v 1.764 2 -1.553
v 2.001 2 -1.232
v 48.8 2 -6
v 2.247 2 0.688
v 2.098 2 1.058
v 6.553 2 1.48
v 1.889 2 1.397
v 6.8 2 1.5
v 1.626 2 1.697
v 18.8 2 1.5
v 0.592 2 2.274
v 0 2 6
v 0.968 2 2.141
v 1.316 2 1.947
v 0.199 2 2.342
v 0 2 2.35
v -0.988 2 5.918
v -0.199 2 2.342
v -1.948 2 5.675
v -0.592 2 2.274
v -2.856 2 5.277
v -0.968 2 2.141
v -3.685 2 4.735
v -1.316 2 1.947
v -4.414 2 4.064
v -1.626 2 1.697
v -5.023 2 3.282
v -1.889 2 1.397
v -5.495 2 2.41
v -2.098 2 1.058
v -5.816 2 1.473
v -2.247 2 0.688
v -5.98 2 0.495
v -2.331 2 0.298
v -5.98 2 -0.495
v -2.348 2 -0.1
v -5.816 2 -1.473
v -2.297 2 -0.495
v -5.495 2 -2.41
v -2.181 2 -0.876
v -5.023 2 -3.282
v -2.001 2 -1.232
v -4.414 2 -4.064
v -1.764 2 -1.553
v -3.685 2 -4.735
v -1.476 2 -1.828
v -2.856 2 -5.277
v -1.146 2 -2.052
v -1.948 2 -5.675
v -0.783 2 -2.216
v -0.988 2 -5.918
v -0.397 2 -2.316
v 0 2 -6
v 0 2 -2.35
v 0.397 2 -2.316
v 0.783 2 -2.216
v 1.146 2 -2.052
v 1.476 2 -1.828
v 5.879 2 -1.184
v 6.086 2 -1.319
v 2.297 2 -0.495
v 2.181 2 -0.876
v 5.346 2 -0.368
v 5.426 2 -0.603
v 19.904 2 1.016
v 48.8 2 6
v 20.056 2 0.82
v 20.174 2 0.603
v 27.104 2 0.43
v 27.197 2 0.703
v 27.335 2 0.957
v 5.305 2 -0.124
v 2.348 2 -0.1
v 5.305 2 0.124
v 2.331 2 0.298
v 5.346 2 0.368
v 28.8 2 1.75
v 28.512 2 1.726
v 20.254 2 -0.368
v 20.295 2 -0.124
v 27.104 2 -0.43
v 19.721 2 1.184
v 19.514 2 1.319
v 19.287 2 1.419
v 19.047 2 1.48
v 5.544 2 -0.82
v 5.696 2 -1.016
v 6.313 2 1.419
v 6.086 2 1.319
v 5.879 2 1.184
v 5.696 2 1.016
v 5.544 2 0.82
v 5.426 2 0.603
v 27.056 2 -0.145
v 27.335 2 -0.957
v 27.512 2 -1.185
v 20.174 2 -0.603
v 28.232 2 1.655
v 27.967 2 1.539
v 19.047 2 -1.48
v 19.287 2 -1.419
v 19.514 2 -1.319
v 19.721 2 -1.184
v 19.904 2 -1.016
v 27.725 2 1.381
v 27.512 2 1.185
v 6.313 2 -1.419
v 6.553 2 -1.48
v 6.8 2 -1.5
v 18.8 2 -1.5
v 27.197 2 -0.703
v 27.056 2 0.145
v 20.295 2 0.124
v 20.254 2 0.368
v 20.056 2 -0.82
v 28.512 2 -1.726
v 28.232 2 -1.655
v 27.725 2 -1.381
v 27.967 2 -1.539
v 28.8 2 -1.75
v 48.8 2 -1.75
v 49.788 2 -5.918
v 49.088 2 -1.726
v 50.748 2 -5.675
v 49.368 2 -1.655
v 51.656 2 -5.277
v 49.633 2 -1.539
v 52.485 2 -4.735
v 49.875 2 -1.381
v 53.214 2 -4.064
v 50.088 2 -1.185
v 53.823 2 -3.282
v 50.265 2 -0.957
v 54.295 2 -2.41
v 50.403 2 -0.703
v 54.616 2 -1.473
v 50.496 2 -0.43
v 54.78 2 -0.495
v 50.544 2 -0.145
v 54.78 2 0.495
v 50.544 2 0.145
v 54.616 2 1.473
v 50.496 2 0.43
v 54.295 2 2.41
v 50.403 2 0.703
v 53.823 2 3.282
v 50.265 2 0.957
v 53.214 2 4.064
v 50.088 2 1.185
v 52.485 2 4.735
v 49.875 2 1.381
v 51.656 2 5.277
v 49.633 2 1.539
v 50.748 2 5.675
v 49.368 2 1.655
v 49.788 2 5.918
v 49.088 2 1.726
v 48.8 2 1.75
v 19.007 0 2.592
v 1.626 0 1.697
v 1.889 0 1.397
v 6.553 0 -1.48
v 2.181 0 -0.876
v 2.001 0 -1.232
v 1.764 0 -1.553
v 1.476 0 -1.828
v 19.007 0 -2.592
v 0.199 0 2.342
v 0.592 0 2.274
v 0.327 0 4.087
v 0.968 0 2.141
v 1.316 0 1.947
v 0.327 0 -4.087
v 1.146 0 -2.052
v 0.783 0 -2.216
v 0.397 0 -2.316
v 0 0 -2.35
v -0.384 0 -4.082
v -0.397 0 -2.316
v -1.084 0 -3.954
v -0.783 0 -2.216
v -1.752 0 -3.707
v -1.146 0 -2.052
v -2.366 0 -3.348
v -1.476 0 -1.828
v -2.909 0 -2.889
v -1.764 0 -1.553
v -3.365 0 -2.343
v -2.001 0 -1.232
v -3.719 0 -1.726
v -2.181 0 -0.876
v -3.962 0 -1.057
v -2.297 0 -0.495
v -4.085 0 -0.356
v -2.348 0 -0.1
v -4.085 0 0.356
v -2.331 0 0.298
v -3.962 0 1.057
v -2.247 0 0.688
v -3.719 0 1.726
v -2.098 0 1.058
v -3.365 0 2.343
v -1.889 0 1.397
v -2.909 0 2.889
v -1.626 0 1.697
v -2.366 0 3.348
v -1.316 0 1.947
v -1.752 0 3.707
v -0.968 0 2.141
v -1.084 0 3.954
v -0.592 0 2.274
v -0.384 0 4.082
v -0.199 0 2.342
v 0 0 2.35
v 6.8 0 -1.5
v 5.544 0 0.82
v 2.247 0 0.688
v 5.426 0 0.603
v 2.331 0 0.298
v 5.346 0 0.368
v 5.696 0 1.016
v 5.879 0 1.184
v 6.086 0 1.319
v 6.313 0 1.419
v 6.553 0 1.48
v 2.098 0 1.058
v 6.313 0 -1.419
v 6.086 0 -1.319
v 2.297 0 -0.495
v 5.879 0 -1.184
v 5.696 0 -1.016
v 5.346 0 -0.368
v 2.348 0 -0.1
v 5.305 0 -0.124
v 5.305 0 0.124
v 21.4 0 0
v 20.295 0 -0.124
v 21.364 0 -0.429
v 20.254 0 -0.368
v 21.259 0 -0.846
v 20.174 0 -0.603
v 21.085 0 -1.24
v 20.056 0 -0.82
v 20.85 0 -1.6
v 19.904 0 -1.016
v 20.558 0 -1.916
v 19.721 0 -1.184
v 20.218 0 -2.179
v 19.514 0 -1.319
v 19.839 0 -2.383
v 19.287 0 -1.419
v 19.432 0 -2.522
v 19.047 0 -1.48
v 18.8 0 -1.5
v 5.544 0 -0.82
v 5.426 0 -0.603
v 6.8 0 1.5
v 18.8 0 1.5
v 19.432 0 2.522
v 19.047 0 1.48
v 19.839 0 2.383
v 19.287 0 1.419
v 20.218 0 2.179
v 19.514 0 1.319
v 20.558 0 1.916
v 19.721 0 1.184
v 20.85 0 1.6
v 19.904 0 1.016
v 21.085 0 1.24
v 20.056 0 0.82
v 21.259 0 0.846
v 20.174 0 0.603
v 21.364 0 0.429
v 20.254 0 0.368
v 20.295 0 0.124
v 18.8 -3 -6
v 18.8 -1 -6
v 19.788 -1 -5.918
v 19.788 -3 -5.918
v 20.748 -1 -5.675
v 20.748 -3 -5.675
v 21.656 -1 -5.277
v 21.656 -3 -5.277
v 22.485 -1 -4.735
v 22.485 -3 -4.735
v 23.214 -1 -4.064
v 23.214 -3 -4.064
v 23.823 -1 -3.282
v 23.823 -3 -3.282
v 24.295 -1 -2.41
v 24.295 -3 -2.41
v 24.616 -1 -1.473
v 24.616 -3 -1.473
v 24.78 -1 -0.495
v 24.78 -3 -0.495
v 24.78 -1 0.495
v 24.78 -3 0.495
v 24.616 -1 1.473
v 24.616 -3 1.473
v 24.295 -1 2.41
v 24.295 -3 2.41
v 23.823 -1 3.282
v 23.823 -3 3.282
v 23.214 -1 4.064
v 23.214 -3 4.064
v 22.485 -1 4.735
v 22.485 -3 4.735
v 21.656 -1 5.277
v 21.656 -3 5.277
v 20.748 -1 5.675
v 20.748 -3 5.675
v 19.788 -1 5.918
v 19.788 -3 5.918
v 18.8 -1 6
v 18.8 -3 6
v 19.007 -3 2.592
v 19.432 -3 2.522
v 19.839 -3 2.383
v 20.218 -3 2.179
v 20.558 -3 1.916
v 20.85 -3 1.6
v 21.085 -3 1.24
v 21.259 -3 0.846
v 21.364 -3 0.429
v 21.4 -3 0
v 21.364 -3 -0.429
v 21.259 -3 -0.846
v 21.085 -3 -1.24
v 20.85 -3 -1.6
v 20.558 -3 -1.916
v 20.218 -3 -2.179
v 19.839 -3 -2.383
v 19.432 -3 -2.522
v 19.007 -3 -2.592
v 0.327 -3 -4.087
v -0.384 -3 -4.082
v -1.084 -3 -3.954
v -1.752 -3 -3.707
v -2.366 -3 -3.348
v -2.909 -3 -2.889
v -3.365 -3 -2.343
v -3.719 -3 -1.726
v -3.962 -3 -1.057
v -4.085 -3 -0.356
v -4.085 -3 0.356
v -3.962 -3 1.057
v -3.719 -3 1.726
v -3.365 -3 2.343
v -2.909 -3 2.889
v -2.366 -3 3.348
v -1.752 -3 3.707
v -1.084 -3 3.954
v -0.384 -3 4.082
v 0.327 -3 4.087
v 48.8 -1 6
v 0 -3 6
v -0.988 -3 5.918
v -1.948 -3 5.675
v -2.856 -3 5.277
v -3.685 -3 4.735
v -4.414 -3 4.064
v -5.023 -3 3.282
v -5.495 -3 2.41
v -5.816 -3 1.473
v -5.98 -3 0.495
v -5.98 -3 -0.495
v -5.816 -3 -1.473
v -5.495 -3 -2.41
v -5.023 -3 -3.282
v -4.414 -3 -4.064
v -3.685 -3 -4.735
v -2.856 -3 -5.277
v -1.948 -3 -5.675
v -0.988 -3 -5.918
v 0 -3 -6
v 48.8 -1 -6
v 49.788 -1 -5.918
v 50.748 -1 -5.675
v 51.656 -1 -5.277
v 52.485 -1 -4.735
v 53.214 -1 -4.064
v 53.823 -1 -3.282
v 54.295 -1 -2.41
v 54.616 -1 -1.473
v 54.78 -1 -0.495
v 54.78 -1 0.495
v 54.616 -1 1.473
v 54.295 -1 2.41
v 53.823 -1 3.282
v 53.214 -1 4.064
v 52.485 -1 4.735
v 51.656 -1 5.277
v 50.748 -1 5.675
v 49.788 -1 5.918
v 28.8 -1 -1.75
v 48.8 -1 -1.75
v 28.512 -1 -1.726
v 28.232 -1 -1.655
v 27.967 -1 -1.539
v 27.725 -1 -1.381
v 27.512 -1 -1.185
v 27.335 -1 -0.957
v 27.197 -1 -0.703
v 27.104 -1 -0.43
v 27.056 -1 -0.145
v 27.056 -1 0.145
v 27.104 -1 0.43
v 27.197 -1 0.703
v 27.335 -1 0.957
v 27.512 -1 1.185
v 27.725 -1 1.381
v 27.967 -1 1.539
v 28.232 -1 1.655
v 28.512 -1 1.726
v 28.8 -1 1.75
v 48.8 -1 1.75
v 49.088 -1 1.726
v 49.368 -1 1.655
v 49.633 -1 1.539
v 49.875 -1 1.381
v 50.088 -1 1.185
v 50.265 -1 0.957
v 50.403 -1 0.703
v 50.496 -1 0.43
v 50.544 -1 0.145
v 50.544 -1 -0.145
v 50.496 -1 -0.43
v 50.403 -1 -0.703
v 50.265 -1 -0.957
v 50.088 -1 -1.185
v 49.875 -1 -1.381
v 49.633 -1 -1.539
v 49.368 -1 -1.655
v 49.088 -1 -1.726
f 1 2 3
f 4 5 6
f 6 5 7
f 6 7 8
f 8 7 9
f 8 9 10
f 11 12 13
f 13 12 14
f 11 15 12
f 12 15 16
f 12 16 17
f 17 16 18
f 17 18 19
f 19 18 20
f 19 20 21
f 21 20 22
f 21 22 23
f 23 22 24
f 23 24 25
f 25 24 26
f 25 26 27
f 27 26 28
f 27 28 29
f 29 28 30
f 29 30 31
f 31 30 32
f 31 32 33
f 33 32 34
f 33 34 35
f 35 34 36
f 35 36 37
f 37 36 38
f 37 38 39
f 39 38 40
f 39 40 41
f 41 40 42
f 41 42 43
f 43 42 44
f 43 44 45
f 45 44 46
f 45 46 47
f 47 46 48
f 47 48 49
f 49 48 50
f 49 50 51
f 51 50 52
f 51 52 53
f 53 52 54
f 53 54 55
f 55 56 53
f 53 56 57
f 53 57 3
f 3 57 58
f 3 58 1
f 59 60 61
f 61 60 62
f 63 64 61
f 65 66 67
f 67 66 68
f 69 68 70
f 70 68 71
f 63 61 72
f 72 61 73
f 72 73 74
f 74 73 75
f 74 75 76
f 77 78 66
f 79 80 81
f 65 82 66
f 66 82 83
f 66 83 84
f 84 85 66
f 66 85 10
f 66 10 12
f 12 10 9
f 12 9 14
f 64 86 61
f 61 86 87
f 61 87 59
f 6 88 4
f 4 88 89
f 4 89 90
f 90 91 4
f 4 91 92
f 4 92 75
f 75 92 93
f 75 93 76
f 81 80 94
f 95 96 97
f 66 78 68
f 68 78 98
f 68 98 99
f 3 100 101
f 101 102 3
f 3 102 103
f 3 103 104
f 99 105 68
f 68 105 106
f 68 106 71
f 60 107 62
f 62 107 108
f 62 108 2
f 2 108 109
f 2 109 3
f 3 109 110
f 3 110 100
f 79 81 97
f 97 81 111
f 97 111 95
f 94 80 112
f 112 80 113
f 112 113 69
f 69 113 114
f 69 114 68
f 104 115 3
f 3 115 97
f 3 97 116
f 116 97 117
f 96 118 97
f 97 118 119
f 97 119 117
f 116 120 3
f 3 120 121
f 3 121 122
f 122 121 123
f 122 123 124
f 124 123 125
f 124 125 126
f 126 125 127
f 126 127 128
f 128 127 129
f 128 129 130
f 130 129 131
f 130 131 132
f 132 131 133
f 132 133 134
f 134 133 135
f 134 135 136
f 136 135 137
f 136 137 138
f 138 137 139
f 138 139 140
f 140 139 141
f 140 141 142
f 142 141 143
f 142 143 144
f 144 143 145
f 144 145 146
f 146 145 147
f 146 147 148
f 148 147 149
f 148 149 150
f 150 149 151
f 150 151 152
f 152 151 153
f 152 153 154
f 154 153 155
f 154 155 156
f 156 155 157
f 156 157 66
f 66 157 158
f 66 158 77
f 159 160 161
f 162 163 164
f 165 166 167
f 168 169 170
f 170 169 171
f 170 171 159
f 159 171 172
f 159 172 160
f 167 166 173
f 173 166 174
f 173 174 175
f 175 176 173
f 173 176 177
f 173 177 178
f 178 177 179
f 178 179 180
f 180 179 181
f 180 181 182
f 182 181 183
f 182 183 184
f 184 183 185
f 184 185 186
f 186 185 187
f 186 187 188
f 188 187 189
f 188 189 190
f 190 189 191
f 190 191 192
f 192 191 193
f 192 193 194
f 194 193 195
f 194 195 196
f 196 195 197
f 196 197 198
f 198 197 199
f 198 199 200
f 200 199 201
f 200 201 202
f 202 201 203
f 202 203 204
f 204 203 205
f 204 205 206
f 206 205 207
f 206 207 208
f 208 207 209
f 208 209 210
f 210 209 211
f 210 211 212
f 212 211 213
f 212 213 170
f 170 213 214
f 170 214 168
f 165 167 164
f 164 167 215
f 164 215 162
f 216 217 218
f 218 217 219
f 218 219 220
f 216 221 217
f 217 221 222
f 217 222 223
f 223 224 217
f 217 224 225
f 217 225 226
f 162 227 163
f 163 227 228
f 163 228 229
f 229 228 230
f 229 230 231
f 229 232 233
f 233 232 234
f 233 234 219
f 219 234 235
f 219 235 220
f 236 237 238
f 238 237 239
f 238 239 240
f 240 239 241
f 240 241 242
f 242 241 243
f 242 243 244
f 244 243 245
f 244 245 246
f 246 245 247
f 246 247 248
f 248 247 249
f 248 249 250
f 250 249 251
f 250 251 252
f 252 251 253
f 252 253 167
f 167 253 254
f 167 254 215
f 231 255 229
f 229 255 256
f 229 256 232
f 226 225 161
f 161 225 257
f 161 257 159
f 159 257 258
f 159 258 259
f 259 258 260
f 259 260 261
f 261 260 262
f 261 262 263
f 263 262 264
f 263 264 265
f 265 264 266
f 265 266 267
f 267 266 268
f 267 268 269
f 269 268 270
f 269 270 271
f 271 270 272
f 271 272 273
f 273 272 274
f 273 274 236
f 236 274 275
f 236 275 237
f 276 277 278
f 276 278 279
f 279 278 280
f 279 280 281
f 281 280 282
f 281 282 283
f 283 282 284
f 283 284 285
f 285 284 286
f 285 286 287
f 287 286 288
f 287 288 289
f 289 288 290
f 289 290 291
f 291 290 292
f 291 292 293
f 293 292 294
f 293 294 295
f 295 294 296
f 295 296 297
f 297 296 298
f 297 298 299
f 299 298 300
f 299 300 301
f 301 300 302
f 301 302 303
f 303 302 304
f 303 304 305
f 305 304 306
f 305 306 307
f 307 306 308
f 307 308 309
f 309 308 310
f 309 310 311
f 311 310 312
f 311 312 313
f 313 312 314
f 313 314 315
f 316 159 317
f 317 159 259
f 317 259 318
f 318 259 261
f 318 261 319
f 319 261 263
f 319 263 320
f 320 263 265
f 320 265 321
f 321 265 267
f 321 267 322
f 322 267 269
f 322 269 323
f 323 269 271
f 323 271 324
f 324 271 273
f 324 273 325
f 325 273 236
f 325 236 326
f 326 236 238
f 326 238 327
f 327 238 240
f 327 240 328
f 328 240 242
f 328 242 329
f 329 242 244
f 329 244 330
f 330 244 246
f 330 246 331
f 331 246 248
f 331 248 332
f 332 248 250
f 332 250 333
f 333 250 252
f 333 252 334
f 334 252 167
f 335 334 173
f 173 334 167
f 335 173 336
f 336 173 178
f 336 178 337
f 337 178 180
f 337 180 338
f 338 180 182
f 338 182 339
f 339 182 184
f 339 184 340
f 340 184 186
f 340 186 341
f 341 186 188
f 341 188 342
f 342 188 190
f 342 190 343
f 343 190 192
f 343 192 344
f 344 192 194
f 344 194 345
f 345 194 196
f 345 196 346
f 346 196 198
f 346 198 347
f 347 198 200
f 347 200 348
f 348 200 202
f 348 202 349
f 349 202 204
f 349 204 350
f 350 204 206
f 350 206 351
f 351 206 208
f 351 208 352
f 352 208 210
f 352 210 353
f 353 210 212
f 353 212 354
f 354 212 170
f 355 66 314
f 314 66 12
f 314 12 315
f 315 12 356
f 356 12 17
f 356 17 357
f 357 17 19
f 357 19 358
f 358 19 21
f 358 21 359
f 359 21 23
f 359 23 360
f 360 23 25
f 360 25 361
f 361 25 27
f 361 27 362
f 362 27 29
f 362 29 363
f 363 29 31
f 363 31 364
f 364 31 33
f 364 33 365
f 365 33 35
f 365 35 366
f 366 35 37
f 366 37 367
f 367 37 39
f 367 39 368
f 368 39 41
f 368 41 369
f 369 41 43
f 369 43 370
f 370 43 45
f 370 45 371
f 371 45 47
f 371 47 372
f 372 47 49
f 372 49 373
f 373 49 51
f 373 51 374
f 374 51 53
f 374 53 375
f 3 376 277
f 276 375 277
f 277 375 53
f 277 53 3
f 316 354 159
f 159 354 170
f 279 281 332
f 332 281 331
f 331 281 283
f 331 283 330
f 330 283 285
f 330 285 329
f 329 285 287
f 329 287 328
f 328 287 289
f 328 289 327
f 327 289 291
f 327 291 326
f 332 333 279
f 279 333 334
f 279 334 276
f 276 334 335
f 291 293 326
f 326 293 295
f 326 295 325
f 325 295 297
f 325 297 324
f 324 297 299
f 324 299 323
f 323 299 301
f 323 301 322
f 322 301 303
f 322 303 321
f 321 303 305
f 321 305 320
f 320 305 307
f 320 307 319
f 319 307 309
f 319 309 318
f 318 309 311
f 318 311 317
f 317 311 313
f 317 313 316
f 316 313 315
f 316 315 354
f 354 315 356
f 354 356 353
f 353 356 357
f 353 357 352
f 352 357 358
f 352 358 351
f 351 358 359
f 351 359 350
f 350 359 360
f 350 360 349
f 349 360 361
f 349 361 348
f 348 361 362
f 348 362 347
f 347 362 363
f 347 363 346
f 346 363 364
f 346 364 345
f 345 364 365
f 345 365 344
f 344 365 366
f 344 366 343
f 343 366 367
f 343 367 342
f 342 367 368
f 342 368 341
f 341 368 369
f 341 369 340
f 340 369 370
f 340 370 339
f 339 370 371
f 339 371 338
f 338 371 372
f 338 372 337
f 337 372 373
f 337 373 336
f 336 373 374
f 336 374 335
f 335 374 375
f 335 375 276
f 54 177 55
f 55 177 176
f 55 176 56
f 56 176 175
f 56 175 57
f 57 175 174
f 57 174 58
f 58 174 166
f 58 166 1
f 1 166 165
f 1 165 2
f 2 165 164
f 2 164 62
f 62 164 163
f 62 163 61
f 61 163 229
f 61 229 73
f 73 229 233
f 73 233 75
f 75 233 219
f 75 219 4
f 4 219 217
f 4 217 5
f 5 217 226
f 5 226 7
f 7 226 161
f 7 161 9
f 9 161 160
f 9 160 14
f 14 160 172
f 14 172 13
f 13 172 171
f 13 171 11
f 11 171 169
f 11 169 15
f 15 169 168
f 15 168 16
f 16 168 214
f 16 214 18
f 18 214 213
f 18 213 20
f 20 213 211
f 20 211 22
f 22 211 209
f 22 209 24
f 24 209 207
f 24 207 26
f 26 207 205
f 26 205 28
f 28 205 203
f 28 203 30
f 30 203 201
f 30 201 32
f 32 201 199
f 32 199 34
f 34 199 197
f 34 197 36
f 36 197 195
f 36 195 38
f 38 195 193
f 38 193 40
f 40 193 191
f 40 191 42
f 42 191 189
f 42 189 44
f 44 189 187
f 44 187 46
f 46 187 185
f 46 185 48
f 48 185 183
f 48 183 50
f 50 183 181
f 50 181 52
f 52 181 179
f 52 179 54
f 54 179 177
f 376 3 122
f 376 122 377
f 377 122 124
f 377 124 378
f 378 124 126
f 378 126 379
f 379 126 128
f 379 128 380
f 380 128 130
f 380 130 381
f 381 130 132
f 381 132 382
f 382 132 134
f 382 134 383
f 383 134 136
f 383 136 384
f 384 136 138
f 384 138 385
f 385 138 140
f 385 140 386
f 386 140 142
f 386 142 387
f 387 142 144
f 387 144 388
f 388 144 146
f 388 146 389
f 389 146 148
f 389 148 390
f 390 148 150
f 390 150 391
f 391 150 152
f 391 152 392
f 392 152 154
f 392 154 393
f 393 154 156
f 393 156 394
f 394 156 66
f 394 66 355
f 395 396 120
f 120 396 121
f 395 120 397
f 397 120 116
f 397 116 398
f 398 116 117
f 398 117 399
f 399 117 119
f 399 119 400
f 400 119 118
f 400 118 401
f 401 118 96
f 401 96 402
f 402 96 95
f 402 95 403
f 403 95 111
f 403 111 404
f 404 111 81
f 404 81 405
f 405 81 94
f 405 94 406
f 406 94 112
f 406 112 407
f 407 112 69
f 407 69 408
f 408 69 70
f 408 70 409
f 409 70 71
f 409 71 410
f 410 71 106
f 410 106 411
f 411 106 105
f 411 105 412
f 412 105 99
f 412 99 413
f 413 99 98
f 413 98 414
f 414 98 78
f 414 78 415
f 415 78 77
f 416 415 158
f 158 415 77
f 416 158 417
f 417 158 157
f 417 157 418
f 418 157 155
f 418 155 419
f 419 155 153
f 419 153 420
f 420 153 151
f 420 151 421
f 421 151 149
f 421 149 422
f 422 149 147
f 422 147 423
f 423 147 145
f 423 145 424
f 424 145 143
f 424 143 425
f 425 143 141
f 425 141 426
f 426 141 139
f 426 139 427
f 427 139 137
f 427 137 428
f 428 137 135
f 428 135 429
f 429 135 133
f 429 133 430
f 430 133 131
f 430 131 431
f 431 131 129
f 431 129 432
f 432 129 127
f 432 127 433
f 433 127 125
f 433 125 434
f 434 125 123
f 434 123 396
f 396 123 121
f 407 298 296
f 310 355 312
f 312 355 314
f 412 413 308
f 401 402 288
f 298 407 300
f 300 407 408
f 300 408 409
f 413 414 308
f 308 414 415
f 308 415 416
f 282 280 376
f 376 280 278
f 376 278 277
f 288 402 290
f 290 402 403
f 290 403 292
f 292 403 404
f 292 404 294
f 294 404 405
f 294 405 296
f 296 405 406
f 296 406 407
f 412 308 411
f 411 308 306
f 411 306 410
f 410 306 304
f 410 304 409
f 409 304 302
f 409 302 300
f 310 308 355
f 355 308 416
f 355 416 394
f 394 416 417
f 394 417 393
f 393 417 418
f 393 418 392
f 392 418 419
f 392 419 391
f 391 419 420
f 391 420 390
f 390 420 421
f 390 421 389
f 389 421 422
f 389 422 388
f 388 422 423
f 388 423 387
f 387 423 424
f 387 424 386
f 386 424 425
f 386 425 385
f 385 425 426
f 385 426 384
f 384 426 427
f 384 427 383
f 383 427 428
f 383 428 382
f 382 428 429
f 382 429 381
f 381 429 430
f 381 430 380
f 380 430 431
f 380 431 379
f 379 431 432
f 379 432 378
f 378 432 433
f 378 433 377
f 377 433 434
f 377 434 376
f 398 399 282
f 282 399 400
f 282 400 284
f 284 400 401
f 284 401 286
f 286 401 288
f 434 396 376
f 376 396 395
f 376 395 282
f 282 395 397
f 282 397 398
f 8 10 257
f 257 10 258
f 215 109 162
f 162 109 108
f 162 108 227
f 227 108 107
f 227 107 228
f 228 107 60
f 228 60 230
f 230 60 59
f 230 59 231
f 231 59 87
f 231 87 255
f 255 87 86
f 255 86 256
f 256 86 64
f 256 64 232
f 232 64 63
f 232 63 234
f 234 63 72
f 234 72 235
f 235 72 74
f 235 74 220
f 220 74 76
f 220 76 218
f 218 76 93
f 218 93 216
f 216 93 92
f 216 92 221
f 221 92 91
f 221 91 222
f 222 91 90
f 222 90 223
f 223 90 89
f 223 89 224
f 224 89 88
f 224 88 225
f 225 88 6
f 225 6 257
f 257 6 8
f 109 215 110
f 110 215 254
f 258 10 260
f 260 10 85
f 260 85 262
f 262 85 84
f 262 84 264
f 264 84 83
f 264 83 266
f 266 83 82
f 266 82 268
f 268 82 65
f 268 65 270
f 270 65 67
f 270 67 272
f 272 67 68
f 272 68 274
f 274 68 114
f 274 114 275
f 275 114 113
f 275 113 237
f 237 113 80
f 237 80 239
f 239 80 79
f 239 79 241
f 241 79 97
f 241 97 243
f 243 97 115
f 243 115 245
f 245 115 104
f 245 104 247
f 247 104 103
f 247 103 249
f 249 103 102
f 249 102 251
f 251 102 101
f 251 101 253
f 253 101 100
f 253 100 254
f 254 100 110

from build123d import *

# Parameters (mm, degrees)
EXTRUDE_1_DEPTH     = 3
EXTRUDE_START       = 2
SKETCH_1_4_R        = 2.35
EXTRUDE_2_DEPTH     = 2
EXTRUDE_3_DEPTH     = 3
CUT_EXTRUDE_1_DEPTH = 10


with BuildPart() as part:
    # 草图1 → 凸台-拉伸1 (new body)
    with BuildSketch(Plane(origin=(0, 0, 0), x_dir=(1, 0, 0), z_dir=(0, 1, 0))):
        with BuildLine():
            ThreePointArc((0, 6), (-6, 0), (0, -6))
            Line((0, -6), (18.8, -6))
            ThreePointArc((18.8, -6), (24.8, 0), (18.8, 6))
            Line((18.8, 6), (0, 6))
        make_face()
        with BuildLine():
            ThreePointArc((0.32712766, -4.086928858), (-4.1, 0), (0.32712766, 4.086928858))
            Line((0.32712766, 4.086928858), (19.007446809, 2.591710983))
            ThreePointArc((19.007446809, 2.591710983), (21.4, 0), (19.007446809, -2.591710983))
            Line((19.007446809, -2.591710983), (0.32712766, -4.086928858))
        make_face(mode=Mode.SUBTRACT)
    extrude(amount=-EXTRUDE_1_DEPTH)

    # 草图1<4> → 凸台-拉伸2 (add)
    with BuildSketch(Plane(origin=(0, 0, 0), x_dir=(1, 0, 0), z_dir=(0, 1, 0)).offset(EXTRUDE_START)):
        with BuildLine():
            ThreePointArc((0, 6), (-6, 0), (0, -6))
            Line((0, -6), (18.8, -6))
            ThreePointArc((18.8, -6), (24.8, 0), (18.8, 6))
            Line((18.8, 6), (0, 6))
        make_face()
        Circle(SKETCH_1_4_R, mode=Mode.SUBTRACT)
    extrude(amount=-EXTRUDE_2_DEPTH)

    # 草图2 → 凸台-拉伸3 (add)
    with BuildSketch(Plane(origin=(0, 2, 0), x_dir=(1, 0, 0), z_dir=(0, 1, 0))):
        with BuildLine():
            Line((48.8, 6), (18.8, 6))
            ThreePointArc((18.8, 6), (24.8, 0), (18.8, -6))
            Line((18.8, -6), (48.8, -6))
            ThreePointArc((48.8, -6), (54.8, 0), (48.8, 6))
        make_face()
        with BuildLine():
            ThreePointArc((48.8, 1.75), (50.55, 0), (48.8, -1.75))
            Line((48.8, -1.75), (28.8, -1.75))
            ThreePointArc((28.8, -1.75), (27.05, 0), (28.8, 1.75))
            Line((28.8, 1.75), (48.8, 1.75))
        make_face(mode=Mode.SUBTRACT)
    extrude(amount=-EXTRUDE_3_DEPTH)

    # 草图2<3> → 切除-拉伸1 (cut)
    with BuildSketch(Plane(origin=(0, 2, 0), x_dir=(1, 0, 0), z_dir=(0, 1, 0))):
        with BuildLine():
            ThreePointArc((18.8, -1.5), (20.3, 0), (18.8, 1.5))
            Line((18.8, 1.5), (6.8, 1.5))
            ThreePointArc((6.8, 1.5), (5.3, 0), (6.8, -1.5))
            Line((6.8, -1.5), (18.8, -1.5))
        make_face()
    extrude(amount=-CUT_EXTRUDE_1_DEPTH, mode=Mode.SUBTRACT)


solid = part.part
